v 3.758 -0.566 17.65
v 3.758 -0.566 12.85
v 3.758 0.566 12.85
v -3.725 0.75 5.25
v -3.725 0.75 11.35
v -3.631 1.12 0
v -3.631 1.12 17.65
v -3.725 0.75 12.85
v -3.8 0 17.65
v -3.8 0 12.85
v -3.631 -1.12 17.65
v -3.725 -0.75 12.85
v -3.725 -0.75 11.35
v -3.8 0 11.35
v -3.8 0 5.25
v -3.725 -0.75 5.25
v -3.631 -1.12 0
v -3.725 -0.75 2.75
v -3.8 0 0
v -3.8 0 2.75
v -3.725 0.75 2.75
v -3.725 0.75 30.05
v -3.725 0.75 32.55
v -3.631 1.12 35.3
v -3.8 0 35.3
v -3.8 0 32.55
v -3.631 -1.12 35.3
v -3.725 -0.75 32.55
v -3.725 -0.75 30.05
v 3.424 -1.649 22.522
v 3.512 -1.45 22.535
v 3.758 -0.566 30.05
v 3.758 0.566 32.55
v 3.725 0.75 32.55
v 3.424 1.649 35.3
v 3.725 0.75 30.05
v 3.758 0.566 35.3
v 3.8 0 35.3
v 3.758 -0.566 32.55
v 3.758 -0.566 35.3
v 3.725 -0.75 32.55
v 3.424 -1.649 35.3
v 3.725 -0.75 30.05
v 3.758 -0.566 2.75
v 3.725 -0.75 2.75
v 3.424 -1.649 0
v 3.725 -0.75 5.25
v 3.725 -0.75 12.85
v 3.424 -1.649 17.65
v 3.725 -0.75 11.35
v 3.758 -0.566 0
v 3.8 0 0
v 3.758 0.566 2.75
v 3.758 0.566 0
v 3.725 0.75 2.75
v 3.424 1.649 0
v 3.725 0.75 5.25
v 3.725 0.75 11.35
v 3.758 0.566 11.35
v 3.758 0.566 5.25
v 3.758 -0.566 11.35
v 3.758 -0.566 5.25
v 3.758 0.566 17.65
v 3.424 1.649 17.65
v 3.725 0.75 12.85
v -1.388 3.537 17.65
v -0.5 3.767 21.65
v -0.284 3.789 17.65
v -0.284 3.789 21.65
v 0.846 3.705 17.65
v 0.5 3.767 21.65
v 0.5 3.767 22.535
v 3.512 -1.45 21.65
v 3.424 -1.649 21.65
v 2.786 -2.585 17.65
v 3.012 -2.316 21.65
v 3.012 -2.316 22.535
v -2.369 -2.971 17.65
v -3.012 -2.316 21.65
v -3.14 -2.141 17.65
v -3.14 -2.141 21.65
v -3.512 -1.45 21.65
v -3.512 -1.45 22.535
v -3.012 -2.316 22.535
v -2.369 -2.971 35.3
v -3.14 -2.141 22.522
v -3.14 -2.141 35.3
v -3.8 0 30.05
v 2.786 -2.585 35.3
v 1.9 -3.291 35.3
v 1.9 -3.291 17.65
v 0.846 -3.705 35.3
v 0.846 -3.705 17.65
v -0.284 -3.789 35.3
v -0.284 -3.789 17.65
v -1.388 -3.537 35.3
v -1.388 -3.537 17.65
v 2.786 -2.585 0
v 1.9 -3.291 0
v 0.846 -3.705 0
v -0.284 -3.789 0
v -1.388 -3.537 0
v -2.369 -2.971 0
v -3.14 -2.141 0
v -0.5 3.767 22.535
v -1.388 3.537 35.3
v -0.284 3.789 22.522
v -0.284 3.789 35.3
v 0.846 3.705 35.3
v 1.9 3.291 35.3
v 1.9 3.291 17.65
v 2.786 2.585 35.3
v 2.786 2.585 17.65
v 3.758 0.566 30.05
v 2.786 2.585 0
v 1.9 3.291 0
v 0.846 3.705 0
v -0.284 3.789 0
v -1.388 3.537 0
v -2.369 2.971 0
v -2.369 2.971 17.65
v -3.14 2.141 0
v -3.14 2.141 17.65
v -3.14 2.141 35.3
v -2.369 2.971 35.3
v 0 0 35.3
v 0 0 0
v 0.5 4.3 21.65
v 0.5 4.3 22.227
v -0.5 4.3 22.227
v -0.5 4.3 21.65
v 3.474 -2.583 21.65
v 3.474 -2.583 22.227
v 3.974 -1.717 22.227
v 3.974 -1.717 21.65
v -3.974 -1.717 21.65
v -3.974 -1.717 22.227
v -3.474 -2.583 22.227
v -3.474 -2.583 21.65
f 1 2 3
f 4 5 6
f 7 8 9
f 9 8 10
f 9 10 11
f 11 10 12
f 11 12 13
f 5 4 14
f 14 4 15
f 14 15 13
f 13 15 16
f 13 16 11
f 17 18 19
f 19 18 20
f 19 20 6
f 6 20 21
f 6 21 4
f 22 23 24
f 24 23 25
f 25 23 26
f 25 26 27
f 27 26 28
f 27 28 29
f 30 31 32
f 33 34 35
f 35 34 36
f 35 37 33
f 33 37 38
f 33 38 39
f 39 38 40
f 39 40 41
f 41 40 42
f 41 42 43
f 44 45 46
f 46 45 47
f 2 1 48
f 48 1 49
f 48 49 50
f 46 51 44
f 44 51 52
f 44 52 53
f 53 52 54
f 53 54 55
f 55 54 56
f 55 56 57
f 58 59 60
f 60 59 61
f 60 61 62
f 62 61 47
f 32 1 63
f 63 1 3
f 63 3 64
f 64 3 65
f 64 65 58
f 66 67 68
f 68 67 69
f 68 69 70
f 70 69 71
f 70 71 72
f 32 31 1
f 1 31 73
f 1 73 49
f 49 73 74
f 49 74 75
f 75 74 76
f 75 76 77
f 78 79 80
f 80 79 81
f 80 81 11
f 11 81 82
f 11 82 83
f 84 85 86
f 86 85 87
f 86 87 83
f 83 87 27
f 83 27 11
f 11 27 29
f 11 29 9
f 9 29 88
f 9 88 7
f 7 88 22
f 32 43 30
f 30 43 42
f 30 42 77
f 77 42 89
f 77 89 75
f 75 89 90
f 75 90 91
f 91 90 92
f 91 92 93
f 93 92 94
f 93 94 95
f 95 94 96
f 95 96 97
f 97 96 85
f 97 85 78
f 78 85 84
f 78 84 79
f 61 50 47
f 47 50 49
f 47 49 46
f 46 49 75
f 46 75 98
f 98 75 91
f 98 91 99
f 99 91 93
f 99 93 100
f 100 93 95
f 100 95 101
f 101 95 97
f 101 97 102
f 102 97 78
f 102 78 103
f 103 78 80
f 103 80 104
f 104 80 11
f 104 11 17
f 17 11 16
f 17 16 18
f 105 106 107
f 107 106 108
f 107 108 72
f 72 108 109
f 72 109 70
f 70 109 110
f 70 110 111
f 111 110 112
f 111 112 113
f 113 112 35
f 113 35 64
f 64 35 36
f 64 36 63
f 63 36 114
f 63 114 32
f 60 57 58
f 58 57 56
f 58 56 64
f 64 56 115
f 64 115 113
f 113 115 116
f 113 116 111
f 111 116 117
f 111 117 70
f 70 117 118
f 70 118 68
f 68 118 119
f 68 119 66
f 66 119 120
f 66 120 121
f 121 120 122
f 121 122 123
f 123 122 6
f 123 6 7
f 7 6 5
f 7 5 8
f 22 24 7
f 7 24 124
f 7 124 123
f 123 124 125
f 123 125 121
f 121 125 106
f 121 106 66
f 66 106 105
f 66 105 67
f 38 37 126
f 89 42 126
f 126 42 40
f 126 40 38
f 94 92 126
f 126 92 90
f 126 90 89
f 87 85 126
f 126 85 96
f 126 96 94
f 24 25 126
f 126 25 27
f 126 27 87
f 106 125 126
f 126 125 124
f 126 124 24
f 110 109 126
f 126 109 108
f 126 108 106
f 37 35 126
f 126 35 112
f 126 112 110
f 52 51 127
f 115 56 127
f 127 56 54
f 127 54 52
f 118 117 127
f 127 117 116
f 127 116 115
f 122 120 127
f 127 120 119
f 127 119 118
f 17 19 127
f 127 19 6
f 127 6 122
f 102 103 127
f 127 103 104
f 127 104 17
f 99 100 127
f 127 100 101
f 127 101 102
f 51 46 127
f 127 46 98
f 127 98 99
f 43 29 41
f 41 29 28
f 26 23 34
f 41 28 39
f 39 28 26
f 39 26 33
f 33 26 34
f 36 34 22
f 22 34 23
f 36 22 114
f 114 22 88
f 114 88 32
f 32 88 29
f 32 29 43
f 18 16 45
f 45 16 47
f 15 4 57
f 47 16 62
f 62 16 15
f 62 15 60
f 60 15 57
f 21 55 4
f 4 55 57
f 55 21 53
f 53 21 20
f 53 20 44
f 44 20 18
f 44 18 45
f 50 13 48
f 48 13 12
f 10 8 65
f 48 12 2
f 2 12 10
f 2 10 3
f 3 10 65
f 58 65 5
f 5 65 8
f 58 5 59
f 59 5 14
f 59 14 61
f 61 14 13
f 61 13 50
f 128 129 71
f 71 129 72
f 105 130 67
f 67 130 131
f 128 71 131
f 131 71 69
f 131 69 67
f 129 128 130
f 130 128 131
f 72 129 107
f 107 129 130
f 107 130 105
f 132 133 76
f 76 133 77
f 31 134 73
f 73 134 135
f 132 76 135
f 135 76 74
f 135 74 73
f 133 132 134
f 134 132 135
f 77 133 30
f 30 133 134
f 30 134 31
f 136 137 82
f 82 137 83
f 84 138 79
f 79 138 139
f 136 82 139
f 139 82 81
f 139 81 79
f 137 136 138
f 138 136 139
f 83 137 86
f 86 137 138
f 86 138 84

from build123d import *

# Parameters (mm, degrees)
SKETCH1_R               = 3.8
BOSS_EXTRUDE1_DEPTH     = 35.3
SKETCH3_W               = 2.5
SKETCH3_H               = 1.5
CUT_EXTRUDE2_DEPTH      = 36.706722056
CUT_EXTRUDE3_DEPTH      = 36.706722056
CUT_EXTRUDE3_DEPTH_BACK = 36.706722056
SKETCH6_W               = 1.5
SKETCH6_H               = 1.5
BOSS_EXTRUDE2_DEPTH     = 0.5
CIRPATTERN1_COUNT       = 3


with BuildPart() as part:
    # Sketch1 → Boss-Extrude1 (new body)
    with BuildSketch(Plane.XY):
        Circle(SKETCH1_R)
    extrude(amount=BOSS_EXTRUDE1_DEPTH)

    # Sketch3 → Cut-Extrude2 (cut, symmetric)
    with BuildSketch(Plane(origin=(0, 0, 0), x_dir=(0, 0, -1), z_dir=(1, 0, 0))):
        with Locations((-31.3, 0)):
            Rectangle(SKETCH3_W, SKETCH3_H)
    cut_extrude2 = extrude(amount=CUT_EXTRUDE2_DEPTH, both=True, mode=Mode.SUBTRACT)

    # Mirror1: Cut-Extrude2 across plane
    add(cut_extrude2.mirror(Plane.XY.offset(17.65)), mode=Mode.SUBTRACT)

    # Sketch6 → Cut-Extrude3 (cut, two sides: drawn at the far end of the back side and taken through both)
    with BuildSketch(Plane(origin=(0, 0, 0), x_dir=(0, 0, -1), z_dir=(1, 0, 0)).offset(-CUT_EXTRUDE3_DEPTH_BACK)):
        with Locations((-12.1, 0)):
            Rectangle(SKETCH6_W, SKETCH6_H)
    extrude(amount=CUT_EXTRUDE3_DEPTH + CUT_EXTRUDE3_DEPTH_BACK, mode=Mode.SUBTRACT)

    # Sketch7 → Boss-Extrude2 (add, symmetric)
    with BuildSketch(Plane(origin=(0, 0, 0), x_dir=(0, 0, -1), z_dir=(1, 0, 0))):
        Polygon((-22.227350269, 4.3), (-22.804700538, 3.3), (-21.65, 3.3), (-21.65, 4.3), align=None)
    boss_extrude2 = extrude(amount=BOSS_EXTRUDE2_DEPTH, both=True)

    # CirPattern1: Boss-Extrude2 ×3 about axis
    cirpattern1_axis = Axis((0, 0, 0), (0, 0, 1))
    for i in range(1, CIRPATTERN1_COUNT):
        add(boss_extrude2.rotate(cirpattern1_axis, i * 360 / CIRPATTERN1_COUNT))


solid = part.part
